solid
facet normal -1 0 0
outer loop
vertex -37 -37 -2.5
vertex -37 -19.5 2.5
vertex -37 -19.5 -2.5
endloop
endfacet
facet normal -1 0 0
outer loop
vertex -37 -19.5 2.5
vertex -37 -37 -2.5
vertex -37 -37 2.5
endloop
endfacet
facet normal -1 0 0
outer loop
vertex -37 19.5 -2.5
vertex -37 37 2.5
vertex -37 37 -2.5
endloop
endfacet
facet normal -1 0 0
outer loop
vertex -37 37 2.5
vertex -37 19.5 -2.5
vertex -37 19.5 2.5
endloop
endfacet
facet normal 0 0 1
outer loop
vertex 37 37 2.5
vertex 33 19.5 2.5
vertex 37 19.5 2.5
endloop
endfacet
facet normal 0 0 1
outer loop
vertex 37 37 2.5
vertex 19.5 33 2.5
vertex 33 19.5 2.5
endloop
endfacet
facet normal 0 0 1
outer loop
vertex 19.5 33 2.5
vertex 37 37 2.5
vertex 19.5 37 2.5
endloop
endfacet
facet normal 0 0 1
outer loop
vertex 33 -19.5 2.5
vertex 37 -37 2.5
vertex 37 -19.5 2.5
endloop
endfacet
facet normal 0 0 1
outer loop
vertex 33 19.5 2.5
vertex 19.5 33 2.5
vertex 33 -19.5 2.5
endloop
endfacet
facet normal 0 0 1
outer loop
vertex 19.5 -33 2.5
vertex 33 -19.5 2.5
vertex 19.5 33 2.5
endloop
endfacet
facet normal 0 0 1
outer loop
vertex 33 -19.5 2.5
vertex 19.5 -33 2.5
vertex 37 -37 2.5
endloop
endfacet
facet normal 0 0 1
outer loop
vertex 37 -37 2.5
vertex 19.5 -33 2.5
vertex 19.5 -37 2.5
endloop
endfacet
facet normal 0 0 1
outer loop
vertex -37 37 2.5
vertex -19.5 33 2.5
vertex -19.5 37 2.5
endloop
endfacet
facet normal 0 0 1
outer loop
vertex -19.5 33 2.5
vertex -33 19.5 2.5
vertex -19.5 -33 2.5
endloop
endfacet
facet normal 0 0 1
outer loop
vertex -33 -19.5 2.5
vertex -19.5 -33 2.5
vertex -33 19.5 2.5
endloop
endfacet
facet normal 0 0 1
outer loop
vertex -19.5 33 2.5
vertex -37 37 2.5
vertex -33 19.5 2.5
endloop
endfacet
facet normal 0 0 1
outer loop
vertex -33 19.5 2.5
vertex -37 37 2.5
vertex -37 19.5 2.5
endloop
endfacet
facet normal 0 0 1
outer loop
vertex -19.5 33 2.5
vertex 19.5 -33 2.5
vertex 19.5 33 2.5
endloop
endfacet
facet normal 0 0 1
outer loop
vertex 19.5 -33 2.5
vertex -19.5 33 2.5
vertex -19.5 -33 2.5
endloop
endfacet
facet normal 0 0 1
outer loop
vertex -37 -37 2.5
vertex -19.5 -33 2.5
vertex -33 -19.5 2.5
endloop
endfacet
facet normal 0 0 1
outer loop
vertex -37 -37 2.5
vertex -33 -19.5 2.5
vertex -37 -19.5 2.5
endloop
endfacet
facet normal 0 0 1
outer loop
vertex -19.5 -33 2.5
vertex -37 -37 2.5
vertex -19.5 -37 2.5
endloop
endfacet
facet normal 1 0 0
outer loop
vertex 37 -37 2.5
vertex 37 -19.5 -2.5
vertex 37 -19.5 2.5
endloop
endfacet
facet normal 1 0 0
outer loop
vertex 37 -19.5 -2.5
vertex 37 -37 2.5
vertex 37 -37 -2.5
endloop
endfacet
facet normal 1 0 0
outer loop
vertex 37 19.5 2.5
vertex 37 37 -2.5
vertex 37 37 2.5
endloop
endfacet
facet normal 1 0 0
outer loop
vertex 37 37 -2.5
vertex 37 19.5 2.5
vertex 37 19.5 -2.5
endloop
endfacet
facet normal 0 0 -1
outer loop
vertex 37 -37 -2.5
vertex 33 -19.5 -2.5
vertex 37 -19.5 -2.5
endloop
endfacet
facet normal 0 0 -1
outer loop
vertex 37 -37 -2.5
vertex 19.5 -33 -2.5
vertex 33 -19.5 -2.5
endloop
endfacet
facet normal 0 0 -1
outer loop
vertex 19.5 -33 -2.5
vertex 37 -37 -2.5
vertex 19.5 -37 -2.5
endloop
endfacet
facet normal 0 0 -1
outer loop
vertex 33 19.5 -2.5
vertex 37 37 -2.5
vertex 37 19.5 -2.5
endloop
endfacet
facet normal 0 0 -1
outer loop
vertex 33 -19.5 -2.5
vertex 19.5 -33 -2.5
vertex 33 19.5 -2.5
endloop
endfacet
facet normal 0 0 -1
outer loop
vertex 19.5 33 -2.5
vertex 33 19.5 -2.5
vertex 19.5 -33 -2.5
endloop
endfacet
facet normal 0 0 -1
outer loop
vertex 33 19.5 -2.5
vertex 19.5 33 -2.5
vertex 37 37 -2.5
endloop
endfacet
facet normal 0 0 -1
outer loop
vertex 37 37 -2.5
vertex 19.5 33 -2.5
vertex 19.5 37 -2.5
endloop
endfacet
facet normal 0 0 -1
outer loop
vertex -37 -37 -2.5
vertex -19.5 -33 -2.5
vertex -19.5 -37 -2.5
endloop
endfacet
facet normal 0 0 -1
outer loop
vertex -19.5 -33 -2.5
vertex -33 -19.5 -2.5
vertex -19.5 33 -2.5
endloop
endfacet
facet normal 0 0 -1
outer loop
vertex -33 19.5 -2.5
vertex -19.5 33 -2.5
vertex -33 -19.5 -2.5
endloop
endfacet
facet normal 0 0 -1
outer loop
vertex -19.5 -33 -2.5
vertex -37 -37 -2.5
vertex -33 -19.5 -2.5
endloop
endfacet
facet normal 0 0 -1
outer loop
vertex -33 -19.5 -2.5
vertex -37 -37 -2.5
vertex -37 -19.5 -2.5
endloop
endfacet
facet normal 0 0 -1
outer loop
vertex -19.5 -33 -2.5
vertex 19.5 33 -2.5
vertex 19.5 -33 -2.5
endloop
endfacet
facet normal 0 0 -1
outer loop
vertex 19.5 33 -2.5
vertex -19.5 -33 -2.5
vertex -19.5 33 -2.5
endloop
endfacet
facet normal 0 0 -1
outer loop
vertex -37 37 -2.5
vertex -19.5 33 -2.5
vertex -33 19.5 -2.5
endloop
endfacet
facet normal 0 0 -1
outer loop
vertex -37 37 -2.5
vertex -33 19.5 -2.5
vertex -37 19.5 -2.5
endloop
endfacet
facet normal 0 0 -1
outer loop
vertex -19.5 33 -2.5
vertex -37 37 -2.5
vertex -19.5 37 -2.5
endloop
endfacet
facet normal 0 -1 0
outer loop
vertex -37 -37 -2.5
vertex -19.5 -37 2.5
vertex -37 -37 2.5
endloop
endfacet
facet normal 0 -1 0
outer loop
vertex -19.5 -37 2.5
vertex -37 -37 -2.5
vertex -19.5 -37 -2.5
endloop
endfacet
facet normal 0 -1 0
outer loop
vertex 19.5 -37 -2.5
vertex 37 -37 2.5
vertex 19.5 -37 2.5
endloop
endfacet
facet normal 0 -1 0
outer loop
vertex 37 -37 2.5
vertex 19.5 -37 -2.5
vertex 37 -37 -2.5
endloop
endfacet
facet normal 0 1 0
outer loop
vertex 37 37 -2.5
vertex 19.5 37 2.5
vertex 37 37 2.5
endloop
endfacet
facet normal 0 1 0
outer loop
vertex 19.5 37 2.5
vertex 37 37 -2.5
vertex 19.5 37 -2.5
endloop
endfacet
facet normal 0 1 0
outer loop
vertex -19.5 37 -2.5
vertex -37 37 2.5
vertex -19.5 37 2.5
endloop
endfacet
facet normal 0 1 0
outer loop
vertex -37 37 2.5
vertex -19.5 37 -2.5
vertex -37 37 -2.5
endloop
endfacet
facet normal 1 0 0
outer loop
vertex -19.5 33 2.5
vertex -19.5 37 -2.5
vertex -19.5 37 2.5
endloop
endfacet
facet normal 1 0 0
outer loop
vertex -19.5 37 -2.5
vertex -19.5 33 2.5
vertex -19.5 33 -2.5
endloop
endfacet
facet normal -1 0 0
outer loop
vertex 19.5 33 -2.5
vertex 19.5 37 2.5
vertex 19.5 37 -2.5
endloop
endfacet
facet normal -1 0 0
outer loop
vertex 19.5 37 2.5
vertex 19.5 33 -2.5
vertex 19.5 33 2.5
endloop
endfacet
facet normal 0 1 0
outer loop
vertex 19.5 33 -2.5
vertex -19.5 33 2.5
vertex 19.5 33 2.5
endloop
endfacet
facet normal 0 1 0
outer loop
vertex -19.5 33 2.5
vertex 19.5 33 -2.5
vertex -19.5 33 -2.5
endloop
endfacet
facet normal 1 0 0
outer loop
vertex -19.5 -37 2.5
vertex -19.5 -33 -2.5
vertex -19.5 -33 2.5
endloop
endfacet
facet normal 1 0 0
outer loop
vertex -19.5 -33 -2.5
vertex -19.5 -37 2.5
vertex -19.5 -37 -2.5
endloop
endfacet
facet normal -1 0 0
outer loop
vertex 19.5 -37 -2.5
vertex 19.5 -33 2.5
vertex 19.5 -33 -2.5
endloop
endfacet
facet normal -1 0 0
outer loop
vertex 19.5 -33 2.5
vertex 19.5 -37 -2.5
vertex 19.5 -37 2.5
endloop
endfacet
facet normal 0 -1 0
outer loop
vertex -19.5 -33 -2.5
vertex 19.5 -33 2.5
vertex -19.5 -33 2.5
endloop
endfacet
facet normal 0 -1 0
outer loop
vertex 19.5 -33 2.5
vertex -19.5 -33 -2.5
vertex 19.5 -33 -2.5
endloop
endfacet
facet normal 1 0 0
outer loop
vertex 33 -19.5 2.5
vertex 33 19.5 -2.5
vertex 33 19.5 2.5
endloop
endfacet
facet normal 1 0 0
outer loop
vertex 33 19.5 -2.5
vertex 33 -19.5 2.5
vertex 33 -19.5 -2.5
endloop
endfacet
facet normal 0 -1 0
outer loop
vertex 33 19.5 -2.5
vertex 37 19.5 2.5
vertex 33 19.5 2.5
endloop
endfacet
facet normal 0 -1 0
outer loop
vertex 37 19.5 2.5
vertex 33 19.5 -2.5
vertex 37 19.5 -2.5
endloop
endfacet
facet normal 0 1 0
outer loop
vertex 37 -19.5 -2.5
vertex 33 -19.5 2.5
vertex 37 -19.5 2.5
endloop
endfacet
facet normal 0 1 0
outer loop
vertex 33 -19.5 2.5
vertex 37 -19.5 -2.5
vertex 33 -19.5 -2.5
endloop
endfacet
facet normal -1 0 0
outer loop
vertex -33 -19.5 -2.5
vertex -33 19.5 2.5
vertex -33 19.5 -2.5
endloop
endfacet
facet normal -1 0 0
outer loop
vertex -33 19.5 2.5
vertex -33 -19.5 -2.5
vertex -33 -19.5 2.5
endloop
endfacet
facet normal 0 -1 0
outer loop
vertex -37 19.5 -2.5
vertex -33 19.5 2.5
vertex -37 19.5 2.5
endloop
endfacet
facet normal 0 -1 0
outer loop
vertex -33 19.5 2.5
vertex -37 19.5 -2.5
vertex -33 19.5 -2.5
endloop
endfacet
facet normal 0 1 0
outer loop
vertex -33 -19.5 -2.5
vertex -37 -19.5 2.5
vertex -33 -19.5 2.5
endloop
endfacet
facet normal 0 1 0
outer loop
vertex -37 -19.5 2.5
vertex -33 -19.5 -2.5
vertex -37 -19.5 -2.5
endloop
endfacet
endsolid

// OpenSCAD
difference() {
    cube([74, 74, 5], center=true);
    translate([0, 35.5, 0]) cube([39, 5, 5], center=true);
    translate([0, -35.5, 0]) cube([39, 5, 5], center=true);
    translate([35.5, 0, 0]) cube([5, 39, 5], center=true);
    translate([-35.5, 0, 0]) cube([5, 39, 5], center=true);
}
